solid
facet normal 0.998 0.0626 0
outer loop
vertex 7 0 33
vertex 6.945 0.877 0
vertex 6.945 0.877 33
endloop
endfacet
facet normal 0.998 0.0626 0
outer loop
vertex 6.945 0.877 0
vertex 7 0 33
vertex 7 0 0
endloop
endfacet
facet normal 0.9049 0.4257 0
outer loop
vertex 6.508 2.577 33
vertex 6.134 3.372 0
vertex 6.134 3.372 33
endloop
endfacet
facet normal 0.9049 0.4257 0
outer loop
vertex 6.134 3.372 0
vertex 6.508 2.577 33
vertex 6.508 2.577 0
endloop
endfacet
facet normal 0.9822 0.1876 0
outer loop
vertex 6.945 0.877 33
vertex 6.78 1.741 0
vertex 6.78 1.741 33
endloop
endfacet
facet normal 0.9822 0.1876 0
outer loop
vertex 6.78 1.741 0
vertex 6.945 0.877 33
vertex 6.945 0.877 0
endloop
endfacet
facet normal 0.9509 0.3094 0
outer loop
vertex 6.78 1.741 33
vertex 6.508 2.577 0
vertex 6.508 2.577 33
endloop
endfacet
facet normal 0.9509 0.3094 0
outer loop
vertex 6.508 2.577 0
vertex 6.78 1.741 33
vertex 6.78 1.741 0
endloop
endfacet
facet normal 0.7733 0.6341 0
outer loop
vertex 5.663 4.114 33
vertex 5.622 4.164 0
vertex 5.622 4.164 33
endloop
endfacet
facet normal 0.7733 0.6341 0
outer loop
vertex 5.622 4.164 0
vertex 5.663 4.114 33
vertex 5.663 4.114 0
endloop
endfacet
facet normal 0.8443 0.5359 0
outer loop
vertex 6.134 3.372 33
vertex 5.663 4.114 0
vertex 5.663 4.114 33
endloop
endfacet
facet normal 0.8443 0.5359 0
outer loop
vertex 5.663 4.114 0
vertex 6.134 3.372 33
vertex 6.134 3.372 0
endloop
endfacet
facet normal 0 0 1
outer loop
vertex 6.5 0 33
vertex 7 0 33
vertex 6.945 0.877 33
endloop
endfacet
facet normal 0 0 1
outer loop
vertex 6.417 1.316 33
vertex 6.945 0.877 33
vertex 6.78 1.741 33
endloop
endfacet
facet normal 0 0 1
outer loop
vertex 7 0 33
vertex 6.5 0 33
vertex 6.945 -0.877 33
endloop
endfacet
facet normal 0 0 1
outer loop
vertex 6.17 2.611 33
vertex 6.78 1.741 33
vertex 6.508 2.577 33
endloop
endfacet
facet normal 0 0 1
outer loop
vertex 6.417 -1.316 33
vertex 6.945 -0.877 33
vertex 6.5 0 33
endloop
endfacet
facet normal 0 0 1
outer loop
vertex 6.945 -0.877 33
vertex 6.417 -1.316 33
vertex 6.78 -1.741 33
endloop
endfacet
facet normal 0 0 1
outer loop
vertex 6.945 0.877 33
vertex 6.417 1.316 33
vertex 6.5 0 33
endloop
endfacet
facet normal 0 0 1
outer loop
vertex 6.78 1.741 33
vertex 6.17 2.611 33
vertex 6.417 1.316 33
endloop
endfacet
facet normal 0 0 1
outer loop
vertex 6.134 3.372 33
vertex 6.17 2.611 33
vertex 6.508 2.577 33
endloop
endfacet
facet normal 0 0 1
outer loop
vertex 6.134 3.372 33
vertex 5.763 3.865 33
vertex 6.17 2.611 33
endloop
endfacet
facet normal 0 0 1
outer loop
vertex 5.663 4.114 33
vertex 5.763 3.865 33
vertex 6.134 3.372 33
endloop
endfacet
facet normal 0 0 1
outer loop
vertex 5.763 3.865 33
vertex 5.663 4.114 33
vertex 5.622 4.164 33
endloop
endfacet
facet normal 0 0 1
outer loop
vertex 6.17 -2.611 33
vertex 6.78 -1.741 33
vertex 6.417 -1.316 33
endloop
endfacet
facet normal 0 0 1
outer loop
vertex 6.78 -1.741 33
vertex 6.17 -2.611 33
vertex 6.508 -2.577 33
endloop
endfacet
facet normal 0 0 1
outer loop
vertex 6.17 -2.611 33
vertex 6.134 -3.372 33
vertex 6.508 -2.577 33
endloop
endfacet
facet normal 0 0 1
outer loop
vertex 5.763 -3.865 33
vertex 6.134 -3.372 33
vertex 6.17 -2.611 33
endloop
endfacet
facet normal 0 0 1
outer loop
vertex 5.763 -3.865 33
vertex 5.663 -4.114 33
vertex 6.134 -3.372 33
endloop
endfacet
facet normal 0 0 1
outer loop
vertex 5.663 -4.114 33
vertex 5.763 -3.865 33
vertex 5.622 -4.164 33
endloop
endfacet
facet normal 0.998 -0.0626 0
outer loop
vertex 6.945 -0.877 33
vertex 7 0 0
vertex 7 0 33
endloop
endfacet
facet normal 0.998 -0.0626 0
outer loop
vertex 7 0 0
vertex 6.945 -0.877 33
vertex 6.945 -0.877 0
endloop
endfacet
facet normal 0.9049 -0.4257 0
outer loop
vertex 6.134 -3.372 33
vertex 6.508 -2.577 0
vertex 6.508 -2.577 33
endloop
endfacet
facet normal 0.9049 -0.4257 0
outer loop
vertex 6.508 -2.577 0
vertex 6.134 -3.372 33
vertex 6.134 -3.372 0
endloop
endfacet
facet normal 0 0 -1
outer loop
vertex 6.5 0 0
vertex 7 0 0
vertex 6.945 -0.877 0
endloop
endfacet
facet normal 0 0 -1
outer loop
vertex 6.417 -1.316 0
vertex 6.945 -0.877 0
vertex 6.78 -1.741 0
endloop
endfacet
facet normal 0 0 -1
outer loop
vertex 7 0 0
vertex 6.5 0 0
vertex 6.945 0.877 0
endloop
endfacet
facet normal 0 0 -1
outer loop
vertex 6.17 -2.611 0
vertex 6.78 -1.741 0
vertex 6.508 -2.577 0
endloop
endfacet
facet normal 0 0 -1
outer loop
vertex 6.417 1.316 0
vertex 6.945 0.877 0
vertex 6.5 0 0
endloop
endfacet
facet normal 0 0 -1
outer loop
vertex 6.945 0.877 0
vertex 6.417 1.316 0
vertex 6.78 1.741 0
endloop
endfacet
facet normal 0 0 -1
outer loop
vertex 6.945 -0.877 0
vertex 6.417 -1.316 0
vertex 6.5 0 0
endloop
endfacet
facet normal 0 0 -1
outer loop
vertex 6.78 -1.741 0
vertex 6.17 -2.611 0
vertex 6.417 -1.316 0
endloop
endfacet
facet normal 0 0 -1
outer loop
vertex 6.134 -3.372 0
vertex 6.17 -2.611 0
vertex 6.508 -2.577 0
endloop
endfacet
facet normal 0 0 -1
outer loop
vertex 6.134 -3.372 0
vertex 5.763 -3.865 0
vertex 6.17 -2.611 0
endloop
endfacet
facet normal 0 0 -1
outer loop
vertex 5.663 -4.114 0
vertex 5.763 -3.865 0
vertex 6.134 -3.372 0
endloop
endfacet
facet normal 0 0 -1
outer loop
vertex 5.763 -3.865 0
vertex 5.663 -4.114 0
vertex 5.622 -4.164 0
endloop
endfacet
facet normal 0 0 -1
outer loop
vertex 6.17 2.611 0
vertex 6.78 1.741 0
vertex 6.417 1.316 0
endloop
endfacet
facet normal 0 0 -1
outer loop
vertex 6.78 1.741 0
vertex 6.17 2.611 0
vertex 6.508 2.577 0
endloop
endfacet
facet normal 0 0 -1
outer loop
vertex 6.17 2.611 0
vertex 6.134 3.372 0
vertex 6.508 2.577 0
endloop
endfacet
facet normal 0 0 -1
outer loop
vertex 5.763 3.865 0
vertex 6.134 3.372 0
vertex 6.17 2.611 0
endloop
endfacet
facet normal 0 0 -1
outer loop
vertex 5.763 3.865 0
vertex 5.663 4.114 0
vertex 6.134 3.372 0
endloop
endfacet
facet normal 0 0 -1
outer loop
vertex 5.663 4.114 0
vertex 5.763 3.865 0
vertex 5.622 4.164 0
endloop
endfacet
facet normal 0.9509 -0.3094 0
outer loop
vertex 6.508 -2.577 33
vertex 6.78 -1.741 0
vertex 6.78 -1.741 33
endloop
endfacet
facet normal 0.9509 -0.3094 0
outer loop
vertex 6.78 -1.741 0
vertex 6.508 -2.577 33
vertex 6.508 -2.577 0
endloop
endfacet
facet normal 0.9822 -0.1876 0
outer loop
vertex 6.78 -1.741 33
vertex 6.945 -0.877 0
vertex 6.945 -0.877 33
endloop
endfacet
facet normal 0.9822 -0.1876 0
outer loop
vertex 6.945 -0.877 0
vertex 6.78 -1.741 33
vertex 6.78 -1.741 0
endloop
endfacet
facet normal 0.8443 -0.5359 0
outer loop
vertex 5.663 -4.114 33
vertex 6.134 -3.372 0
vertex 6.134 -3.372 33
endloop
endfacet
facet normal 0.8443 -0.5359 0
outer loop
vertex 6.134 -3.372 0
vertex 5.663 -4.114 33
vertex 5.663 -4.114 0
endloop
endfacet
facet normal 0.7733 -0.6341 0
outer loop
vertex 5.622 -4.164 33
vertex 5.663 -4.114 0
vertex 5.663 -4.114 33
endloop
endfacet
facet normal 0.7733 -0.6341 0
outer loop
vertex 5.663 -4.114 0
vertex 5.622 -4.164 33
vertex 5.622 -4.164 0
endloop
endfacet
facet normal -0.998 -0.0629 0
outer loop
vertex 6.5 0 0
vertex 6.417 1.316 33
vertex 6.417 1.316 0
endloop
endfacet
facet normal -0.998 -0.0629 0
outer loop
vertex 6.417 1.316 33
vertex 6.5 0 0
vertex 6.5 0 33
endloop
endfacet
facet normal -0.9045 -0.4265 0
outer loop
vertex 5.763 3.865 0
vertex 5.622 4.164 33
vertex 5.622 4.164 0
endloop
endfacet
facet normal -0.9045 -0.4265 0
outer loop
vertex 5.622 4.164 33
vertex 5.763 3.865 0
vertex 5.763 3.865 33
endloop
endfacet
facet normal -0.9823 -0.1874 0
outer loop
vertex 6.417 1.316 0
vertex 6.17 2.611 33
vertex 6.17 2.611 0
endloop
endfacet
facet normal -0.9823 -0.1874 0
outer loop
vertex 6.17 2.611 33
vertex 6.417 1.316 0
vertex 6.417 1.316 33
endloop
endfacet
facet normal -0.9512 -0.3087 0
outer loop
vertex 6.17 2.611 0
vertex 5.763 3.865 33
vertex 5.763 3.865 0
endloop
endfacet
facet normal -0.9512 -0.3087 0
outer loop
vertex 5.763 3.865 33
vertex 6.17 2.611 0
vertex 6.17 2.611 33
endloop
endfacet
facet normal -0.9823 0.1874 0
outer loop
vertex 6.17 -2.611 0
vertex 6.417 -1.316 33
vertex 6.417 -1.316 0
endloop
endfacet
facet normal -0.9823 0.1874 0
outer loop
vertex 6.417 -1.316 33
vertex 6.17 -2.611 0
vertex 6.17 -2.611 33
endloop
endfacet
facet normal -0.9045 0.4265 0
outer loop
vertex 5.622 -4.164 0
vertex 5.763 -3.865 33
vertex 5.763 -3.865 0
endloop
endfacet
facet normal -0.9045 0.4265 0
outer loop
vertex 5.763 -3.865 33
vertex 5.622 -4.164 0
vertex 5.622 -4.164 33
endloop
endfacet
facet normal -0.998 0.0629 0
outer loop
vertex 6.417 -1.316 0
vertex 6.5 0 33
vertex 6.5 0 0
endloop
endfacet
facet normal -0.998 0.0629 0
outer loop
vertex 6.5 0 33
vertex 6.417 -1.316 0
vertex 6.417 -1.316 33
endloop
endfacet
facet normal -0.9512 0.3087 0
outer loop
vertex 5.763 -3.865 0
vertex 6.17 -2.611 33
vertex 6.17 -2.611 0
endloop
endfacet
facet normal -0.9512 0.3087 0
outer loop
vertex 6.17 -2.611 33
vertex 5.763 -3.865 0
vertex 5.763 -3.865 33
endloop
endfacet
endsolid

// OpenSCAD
$fn = 50;


difference() {
	union() {
		cylinder(h = 33, r = 7.0000000000);
		translate(v = [-7.0000000000, 0, 0]) {
			cylinder(h = 33, r = 7.0000000000);
		}
	}
	union() {
		cylinder(h = 33, r = 3.2500000000);
		cylinder(h = 33, r = 1.8000000000);
		cylinder(h = 33, r = 1.8000000000);
		cylinder(h = 33, r = 1.8000000000);
		translate(v = [-11.5000000000, 0, 0]) {
			hull() {
				translate(v = [-3.7500000000, 0.0000000000, 0]) {
					cylinder(h = 33, r = 10.5000000000);
				}
				translate(v = [3.7500000000, 0.0000000000, 0]) {
					cylinder(h = 33, r = 10.5000000000);
				}
				translate(v = [-3.7500000000, -0.0000000000, 0]) {
					cylinder(h = 33, r = 10.5000000000);
				}
				translate(v = [3.7500000000, -0.0000000000, 0]) {
					cylinder(h = 33, r = 10.5000000000);
				}
			}
		}
		translate(v = [-4.0000000000, 0, 0.0000000000]) {
			cylinder(h = 33, r = 10.5000000000);
		}
	}
}
